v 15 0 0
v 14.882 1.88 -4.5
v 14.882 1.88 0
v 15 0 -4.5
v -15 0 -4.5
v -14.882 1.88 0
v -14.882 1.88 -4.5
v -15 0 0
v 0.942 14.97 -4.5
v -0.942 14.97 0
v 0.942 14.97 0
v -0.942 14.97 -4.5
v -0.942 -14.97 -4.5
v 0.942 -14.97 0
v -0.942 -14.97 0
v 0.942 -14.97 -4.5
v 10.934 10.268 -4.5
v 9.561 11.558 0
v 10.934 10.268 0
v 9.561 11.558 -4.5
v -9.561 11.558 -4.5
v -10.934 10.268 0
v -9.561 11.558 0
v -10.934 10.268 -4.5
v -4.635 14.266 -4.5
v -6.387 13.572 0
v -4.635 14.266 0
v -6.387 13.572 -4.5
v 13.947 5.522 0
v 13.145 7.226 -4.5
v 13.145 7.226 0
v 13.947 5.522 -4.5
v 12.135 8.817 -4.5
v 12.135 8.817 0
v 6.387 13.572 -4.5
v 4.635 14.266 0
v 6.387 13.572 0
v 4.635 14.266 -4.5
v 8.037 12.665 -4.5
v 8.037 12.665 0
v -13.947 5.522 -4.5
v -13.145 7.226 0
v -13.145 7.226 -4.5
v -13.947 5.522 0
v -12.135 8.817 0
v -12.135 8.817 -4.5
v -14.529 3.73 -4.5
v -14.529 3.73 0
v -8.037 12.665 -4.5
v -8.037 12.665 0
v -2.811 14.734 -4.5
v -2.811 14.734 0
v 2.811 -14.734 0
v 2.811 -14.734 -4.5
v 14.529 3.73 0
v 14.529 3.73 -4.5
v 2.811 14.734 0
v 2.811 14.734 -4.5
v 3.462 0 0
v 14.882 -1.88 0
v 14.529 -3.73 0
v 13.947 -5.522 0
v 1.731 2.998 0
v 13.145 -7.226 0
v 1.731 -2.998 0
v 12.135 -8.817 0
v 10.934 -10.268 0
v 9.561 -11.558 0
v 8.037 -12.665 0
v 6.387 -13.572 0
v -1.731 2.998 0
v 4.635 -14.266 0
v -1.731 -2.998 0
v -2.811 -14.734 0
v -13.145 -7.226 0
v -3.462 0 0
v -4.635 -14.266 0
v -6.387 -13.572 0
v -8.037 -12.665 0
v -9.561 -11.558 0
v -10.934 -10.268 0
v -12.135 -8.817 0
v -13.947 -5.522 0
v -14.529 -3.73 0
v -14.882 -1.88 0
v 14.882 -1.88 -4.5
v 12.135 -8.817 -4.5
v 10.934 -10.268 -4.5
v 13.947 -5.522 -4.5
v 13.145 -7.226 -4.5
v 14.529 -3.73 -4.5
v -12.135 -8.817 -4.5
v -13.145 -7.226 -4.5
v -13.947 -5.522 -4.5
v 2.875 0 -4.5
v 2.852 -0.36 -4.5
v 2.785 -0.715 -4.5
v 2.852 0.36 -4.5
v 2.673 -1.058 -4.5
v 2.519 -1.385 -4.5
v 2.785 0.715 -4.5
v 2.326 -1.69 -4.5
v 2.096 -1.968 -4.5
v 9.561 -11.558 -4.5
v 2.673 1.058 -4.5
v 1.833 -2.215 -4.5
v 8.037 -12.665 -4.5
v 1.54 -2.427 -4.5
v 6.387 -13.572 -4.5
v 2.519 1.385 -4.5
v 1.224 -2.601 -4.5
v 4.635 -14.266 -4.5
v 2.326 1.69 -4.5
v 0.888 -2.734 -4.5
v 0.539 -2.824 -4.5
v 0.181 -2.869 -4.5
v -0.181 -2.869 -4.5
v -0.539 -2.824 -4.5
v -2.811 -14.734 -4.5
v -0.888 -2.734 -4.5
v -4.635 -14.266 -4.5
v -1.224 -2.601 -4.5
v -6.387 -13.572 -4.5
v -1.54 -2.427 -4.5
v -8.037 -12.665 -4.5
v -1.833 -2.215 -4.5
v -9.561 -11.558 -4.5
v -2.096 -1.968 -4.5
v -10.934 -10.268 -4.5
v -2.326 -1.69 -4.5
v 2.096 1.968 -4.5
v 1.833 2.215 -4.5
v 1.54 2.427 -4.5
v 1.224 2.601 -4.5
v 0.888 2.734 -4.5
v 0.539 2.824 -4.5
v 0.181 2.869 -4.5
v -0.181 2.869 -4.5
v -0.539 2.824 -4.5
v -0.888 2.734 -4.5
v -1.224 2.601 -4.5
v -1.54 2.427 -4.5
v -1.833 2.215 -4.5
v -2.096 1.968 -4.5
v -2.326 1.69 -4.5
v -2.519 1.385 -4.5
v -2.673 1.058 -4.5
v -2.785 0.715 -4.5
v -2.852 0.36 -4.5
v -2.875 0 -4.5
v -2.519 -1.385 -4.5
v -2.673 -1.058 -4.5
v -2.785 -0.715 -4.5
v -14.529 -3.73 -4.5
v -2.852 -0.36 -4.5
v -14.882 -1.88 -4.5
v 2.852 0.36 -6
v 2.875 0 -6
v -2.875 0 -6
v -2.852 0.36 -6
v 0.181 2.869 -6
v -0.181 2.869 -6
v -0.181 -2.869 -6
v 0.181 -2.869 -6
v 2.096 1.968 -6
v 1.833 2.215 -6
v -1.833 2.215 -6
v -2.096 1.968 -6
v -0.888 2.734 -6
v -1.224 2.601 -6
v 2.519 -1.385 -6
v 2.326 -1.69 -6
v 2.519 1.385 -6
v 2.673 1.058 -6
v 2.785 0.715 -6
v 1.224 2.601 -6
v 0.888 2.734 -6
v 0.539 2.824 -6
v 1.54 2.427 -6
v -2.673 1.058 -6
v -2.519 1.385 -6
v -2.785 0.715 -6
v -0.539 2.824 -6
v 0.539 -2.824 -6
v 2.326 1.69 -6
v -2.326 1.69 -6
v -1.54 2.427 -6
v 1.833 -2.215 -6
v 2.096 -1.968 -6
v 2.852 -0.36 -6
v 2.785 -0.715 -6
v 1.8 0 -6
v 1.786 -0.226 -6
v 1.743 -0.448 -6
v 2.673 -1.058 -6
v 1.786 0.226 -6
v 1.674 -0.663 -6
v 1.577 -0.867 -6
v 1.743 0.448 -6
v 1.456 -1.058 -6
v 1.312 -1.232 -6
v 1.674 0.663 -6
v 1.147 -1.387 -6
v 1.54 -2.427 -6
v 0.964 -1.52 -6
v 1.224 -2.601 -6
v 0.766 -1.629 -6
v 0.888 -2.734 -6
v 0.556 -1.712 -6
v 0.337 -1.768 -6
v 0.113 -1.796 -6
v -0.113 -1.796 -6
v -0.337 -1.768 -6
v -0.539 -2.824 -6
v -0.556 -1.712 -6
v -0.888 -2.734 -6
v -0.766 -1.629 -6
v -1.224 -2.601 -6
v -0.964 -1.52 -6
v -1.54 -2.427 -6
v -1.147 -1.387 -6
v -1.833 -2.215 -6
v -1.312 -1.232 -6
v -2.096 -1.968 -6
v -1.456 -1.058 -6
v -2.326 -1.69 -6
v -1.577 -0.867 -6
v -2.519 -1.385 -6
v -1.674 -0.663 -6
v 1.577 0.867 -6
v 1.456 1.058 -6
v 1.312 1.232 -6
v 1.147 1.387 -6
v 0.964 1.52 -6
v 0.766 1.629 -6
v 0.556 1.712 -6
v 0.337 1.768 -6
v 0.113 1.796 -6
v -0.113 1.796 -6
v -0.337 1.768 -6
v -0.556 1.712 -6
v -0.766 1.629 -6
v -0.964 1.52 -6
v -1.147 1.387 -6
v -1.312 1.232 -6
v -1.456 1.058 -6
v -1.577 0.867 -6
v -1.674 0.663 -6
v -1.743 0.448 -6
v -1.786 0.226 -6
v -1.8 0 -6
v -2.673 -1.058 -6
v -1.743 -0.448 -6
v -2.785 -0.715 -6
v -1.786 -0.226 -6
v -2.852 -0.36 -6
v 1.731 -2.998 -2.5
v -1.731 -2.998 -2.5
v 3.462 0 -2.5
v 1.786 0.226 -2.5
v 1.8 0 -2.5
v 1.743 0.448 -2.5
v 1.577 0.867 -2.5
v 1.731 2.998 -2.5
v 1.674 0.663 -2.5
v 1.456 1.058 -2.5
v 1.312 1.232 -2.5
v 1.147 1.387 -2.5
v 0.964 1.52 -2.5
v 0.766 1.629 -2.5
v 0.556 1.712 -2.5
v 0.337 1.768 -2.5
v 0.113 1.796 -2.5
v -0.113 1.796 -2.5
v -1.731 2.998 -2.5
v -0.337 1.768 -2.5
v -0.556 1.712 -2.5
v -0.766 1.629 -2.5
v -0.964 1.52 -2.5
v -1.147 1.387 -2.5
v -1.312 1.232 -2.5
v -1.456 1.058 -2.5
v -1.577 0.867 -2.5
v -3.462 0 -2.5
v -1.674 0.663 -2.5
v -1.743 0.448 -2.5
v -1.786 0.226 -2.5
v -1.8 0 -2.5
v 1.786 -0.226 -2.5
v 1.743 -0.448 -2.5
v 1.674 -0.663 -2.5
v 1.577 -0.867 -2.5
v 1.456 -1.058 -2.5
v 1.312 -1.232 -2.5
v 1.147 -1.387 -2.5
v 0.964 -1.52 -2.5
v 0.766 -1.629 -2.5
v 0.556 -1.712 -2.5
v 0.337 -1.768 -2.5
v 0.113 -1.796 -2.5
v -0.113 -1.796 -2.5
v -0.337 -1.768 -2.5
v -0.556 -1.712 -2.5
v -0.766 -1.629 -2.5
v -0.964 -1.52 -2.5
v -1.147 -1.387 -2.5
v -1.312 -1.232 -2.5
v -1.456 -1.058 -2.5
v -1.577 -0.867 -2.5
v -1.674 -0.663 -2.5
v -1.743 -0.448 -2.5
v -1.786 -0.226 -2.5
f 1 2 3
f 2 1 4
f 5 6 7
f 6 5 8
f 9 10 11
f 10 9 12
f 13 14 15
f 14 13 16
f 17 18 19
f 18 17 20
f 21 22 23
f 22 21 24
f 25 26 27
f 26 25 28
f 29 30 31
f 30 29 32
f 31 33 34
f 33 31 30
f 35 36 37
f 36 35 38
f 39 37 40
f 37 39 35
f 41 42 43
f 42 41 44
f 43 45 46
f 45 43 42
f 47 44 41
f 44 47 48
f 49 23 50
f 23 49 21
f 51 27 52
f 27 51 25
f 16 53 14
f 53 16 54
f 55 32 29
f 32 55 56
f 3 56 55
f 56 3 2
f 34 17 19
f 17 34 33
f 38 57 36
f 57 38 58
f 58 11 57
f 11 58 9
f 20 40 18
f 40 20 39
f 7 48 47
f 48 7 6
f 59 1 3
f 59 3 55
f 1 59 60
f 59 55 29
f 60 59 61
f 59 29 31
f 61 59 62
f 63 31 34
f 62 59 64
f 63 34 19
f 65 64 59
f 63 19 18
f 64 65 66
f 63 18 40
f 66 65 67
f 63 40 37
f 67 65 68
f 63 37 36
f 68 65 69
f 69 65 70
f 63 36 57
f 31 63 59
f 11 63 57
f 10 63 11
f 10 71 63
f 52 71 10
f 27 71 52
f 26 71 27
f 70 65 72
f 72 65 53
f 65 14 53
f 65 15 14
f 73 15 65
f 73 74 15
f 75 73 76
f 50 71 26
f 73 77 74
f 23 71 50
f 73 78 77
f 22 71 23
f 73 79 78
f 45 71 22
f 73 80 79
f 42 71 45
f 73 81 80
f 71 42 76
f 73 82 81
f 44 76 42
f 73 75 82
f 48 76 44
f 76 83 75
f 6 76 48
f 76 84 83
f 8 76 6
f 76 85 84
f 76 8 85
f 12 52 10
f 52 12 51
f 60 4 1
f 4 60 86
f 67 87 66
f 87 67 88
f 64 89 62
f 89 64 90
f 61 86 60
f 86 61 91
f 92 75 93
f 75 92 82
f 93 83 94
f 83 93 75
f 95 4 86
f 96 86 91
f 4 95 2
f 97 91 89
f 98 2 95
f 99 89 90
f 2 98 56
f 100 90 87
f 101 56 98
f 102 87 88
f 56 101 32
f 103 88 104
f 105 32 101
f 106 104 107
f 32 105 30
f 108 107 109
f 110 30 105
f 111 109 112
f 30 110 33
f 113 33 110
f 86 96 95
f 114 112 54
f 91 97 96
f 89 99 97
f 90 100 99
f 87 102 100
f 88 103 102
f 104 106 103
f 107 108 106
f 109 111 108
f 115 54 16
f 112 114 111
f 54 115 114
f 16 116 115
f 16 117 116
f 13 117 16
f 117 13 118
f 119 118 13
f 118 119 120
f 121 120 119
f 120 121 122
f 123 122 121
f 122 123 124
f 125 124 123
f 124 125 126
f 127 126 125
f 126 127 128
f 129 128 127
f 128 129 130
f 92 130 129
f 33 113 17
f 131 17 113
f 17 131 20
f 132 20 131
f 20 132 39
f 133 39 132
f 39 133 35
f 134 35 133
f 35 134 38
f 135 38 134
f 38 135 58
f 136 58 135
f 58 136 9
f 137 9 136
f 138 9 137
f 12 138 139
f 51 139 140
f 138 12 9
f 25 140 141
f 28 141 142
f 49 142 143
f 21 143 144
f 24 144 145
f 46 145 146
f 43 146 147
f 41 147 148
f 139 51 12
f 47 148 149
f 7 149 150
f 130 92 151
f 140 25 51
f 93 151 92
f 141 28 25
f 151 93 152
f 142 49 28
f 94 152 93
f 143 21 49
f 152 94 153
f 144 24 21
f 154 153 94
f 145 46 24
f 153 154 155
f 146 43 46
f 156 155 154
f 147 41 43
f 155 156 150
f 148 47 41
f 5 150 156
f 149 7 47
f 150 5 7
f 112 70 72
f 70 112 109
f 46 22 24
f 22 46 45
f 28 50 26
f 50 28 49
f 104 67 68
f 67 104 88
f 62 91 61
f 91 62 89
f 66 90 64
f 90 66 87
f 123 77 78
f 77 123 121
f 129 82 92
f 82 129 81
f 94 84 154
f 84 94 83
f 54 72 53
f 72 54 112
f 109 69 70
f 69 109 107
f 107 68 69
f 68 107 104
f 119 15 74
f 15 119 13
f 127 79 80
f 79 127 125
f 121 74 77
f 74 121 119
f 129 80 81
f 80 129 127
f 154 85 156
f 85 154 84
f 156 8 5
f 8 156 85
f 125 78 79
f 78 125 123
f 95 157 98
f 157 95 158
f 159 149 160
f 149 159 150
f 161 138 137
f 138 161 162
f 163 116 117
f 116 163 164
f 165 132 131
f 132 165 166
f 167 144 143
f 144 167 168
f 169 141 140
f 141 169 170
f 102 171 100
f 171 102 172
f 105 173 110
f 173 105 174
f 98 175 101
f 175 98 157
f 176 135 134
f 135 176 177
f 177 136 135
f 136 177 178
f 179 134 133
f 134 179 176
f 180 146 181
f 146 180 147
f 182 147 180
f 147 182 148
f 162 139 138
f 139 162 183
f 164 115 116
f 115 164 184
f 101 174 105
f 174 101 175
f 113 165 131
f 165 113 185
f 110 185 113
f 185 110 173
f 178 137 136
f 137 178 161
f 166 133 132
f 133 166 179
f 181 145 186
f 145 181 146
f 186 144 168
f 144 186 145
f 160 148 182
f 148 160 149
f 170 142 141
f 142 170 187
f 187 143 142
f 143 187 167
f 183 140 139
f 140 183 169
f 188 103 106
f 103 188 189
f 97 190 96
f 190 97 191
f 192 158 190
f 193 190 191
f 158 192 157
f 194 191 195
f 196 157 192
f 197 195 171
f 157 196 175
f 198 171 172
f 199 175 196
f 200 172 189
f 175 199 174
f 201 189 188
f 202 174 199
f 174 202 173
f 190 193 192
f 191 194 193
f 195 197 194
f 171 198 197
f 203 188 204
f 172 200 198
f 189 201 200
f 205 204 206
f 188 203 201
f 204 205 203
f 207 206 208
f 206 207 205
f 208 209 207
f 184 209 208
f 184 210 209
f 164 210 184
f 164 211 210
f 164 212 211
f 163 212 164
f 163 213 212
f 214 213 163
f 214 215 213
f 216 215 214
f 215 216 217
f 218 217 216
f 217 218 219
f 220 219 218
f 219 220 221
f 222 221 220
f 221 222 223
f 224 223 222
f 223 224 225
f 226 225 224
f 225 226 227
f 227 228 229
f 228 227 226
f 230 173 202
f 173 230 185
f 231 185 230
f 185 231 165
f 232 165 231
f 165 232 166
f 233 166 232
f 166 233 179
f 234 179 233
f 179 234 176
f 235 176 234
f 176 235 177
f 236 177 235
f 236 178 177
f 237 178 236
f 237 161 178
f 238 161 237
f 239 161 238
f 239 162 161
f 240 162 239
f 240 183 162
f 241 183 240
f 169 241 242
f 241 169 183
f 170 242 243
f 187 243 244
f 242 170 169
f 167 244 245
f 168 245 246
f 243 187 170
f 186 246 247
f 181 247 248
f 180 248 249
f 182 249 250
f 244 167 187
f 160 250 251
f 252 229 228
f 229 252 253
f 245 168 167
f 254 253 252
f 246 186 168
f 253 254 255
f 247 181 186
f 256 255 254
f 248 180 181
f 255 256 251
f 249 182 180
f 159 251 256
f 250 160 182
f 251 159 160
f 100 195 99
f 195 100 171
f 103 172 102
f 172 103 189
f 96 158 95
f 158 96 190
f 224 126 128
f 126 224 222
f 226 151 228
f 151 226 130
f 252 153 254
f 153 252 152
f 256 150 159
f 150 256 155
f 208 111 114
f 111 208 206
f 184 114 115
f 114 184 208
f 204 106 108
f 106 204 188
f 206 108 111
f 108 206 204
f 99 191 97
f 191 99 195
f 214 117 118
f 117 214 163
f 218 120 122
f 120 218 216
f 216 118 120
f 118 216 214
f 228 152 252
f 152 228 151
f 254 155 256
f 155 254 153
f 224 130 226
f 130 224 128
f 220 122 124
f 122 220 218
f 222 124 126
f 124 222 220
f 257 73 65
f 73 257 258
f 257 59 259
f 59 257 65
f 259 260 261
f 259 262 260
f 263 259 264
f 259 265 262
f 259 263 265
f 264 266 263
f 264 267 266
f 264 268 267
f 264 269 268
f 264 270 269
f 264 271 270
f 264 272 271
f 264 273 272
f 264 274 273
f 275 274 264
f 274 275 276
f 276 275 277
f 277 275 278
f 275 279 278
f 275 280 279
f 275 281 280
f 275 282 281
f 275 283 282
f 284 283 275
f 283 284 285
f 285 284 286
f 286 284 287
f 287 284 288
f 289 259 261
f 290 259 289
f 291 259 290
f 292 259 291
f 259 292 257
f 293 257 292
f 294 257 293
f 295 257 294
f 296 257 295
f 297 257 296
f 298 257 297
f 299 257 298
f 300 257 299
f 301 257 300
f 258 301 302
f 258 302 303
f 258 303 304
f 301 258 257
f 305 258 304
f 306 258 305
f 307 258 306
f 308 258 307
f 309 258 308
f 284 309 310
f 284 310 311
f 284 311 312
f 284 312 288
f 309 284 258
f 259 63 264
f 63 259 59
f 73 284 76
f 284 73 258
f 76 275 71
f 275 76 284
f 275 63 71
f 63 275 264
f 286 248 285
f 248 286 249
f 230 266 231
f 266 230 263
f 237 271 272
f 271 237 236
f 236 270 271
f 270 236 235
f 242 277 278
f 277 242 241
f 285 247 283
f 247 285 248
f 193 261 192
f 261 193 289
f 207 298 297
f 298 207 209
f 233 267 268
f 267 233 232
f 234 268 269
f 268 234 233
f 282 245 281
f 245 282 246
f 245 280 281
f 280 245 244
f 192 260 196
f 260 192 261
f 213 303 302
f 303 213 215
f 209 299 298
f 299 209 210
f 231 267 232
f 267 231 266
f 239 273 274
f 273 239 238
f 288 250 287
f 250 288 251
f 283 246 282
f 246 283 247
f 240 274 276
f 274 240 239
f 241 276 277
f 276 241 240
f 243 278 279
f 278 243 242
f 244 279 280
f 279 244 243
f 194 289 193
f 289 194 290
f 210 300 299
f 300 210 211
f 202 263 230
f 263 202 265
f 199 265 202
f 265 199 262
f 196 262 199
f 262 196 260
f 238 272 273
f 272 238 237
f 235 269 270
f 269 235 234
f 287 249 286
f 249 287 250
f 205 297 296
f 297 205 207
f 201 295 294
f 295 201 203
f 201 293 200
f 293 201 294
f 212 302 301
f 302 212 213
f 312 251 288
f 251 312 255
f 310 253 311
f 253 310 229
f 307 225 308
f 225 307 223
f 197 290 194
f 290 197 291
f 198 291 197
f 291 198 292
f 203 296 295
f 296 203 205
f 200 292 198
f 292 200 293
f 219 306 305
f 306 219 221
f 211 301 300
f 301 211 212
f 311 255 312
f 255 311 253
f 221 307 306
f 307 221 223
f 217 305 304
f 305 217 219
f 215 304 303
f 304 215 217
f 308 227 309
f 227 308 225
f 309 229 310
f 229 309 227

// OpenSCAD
$fn = 50;


difference() {
	union() {
		translate(v = [0, 0, -4.5000000000]) {
			cylinder(h = 4.5000000000, r = 15.0000000000);
		}
		#translate(v = [0, 0, -6.0000000000]) {
			cylinder(h = 6, r = 2.8750000000);
		}
	}
	union() {
		translate(v = [0, 0, 0]) {
			rotate(a = [0, 0, 0]) {
				difference() {
					union() {
						translate(v = [0, 0, -2.5000000000]) {
							linear_extrude(height = 2.5000000000) {
								polygon(points = [[3.4620000000, 0.0000000000], [1.7310000000, 2.9981799479], [-1.7310000000, 2.9981799479], [-3.4620000000, 0.0000000000], [-1.7310000000, -2.9981799479], [1.7310000000, -2.9981799479]]);
							}
						}
					}
					union();
				}
			}
		}
		#translate(v = [0, 0, -100.0000000000]) {
			cylinder(h = 200, r = 1.8000000000);
		}
	}
}
